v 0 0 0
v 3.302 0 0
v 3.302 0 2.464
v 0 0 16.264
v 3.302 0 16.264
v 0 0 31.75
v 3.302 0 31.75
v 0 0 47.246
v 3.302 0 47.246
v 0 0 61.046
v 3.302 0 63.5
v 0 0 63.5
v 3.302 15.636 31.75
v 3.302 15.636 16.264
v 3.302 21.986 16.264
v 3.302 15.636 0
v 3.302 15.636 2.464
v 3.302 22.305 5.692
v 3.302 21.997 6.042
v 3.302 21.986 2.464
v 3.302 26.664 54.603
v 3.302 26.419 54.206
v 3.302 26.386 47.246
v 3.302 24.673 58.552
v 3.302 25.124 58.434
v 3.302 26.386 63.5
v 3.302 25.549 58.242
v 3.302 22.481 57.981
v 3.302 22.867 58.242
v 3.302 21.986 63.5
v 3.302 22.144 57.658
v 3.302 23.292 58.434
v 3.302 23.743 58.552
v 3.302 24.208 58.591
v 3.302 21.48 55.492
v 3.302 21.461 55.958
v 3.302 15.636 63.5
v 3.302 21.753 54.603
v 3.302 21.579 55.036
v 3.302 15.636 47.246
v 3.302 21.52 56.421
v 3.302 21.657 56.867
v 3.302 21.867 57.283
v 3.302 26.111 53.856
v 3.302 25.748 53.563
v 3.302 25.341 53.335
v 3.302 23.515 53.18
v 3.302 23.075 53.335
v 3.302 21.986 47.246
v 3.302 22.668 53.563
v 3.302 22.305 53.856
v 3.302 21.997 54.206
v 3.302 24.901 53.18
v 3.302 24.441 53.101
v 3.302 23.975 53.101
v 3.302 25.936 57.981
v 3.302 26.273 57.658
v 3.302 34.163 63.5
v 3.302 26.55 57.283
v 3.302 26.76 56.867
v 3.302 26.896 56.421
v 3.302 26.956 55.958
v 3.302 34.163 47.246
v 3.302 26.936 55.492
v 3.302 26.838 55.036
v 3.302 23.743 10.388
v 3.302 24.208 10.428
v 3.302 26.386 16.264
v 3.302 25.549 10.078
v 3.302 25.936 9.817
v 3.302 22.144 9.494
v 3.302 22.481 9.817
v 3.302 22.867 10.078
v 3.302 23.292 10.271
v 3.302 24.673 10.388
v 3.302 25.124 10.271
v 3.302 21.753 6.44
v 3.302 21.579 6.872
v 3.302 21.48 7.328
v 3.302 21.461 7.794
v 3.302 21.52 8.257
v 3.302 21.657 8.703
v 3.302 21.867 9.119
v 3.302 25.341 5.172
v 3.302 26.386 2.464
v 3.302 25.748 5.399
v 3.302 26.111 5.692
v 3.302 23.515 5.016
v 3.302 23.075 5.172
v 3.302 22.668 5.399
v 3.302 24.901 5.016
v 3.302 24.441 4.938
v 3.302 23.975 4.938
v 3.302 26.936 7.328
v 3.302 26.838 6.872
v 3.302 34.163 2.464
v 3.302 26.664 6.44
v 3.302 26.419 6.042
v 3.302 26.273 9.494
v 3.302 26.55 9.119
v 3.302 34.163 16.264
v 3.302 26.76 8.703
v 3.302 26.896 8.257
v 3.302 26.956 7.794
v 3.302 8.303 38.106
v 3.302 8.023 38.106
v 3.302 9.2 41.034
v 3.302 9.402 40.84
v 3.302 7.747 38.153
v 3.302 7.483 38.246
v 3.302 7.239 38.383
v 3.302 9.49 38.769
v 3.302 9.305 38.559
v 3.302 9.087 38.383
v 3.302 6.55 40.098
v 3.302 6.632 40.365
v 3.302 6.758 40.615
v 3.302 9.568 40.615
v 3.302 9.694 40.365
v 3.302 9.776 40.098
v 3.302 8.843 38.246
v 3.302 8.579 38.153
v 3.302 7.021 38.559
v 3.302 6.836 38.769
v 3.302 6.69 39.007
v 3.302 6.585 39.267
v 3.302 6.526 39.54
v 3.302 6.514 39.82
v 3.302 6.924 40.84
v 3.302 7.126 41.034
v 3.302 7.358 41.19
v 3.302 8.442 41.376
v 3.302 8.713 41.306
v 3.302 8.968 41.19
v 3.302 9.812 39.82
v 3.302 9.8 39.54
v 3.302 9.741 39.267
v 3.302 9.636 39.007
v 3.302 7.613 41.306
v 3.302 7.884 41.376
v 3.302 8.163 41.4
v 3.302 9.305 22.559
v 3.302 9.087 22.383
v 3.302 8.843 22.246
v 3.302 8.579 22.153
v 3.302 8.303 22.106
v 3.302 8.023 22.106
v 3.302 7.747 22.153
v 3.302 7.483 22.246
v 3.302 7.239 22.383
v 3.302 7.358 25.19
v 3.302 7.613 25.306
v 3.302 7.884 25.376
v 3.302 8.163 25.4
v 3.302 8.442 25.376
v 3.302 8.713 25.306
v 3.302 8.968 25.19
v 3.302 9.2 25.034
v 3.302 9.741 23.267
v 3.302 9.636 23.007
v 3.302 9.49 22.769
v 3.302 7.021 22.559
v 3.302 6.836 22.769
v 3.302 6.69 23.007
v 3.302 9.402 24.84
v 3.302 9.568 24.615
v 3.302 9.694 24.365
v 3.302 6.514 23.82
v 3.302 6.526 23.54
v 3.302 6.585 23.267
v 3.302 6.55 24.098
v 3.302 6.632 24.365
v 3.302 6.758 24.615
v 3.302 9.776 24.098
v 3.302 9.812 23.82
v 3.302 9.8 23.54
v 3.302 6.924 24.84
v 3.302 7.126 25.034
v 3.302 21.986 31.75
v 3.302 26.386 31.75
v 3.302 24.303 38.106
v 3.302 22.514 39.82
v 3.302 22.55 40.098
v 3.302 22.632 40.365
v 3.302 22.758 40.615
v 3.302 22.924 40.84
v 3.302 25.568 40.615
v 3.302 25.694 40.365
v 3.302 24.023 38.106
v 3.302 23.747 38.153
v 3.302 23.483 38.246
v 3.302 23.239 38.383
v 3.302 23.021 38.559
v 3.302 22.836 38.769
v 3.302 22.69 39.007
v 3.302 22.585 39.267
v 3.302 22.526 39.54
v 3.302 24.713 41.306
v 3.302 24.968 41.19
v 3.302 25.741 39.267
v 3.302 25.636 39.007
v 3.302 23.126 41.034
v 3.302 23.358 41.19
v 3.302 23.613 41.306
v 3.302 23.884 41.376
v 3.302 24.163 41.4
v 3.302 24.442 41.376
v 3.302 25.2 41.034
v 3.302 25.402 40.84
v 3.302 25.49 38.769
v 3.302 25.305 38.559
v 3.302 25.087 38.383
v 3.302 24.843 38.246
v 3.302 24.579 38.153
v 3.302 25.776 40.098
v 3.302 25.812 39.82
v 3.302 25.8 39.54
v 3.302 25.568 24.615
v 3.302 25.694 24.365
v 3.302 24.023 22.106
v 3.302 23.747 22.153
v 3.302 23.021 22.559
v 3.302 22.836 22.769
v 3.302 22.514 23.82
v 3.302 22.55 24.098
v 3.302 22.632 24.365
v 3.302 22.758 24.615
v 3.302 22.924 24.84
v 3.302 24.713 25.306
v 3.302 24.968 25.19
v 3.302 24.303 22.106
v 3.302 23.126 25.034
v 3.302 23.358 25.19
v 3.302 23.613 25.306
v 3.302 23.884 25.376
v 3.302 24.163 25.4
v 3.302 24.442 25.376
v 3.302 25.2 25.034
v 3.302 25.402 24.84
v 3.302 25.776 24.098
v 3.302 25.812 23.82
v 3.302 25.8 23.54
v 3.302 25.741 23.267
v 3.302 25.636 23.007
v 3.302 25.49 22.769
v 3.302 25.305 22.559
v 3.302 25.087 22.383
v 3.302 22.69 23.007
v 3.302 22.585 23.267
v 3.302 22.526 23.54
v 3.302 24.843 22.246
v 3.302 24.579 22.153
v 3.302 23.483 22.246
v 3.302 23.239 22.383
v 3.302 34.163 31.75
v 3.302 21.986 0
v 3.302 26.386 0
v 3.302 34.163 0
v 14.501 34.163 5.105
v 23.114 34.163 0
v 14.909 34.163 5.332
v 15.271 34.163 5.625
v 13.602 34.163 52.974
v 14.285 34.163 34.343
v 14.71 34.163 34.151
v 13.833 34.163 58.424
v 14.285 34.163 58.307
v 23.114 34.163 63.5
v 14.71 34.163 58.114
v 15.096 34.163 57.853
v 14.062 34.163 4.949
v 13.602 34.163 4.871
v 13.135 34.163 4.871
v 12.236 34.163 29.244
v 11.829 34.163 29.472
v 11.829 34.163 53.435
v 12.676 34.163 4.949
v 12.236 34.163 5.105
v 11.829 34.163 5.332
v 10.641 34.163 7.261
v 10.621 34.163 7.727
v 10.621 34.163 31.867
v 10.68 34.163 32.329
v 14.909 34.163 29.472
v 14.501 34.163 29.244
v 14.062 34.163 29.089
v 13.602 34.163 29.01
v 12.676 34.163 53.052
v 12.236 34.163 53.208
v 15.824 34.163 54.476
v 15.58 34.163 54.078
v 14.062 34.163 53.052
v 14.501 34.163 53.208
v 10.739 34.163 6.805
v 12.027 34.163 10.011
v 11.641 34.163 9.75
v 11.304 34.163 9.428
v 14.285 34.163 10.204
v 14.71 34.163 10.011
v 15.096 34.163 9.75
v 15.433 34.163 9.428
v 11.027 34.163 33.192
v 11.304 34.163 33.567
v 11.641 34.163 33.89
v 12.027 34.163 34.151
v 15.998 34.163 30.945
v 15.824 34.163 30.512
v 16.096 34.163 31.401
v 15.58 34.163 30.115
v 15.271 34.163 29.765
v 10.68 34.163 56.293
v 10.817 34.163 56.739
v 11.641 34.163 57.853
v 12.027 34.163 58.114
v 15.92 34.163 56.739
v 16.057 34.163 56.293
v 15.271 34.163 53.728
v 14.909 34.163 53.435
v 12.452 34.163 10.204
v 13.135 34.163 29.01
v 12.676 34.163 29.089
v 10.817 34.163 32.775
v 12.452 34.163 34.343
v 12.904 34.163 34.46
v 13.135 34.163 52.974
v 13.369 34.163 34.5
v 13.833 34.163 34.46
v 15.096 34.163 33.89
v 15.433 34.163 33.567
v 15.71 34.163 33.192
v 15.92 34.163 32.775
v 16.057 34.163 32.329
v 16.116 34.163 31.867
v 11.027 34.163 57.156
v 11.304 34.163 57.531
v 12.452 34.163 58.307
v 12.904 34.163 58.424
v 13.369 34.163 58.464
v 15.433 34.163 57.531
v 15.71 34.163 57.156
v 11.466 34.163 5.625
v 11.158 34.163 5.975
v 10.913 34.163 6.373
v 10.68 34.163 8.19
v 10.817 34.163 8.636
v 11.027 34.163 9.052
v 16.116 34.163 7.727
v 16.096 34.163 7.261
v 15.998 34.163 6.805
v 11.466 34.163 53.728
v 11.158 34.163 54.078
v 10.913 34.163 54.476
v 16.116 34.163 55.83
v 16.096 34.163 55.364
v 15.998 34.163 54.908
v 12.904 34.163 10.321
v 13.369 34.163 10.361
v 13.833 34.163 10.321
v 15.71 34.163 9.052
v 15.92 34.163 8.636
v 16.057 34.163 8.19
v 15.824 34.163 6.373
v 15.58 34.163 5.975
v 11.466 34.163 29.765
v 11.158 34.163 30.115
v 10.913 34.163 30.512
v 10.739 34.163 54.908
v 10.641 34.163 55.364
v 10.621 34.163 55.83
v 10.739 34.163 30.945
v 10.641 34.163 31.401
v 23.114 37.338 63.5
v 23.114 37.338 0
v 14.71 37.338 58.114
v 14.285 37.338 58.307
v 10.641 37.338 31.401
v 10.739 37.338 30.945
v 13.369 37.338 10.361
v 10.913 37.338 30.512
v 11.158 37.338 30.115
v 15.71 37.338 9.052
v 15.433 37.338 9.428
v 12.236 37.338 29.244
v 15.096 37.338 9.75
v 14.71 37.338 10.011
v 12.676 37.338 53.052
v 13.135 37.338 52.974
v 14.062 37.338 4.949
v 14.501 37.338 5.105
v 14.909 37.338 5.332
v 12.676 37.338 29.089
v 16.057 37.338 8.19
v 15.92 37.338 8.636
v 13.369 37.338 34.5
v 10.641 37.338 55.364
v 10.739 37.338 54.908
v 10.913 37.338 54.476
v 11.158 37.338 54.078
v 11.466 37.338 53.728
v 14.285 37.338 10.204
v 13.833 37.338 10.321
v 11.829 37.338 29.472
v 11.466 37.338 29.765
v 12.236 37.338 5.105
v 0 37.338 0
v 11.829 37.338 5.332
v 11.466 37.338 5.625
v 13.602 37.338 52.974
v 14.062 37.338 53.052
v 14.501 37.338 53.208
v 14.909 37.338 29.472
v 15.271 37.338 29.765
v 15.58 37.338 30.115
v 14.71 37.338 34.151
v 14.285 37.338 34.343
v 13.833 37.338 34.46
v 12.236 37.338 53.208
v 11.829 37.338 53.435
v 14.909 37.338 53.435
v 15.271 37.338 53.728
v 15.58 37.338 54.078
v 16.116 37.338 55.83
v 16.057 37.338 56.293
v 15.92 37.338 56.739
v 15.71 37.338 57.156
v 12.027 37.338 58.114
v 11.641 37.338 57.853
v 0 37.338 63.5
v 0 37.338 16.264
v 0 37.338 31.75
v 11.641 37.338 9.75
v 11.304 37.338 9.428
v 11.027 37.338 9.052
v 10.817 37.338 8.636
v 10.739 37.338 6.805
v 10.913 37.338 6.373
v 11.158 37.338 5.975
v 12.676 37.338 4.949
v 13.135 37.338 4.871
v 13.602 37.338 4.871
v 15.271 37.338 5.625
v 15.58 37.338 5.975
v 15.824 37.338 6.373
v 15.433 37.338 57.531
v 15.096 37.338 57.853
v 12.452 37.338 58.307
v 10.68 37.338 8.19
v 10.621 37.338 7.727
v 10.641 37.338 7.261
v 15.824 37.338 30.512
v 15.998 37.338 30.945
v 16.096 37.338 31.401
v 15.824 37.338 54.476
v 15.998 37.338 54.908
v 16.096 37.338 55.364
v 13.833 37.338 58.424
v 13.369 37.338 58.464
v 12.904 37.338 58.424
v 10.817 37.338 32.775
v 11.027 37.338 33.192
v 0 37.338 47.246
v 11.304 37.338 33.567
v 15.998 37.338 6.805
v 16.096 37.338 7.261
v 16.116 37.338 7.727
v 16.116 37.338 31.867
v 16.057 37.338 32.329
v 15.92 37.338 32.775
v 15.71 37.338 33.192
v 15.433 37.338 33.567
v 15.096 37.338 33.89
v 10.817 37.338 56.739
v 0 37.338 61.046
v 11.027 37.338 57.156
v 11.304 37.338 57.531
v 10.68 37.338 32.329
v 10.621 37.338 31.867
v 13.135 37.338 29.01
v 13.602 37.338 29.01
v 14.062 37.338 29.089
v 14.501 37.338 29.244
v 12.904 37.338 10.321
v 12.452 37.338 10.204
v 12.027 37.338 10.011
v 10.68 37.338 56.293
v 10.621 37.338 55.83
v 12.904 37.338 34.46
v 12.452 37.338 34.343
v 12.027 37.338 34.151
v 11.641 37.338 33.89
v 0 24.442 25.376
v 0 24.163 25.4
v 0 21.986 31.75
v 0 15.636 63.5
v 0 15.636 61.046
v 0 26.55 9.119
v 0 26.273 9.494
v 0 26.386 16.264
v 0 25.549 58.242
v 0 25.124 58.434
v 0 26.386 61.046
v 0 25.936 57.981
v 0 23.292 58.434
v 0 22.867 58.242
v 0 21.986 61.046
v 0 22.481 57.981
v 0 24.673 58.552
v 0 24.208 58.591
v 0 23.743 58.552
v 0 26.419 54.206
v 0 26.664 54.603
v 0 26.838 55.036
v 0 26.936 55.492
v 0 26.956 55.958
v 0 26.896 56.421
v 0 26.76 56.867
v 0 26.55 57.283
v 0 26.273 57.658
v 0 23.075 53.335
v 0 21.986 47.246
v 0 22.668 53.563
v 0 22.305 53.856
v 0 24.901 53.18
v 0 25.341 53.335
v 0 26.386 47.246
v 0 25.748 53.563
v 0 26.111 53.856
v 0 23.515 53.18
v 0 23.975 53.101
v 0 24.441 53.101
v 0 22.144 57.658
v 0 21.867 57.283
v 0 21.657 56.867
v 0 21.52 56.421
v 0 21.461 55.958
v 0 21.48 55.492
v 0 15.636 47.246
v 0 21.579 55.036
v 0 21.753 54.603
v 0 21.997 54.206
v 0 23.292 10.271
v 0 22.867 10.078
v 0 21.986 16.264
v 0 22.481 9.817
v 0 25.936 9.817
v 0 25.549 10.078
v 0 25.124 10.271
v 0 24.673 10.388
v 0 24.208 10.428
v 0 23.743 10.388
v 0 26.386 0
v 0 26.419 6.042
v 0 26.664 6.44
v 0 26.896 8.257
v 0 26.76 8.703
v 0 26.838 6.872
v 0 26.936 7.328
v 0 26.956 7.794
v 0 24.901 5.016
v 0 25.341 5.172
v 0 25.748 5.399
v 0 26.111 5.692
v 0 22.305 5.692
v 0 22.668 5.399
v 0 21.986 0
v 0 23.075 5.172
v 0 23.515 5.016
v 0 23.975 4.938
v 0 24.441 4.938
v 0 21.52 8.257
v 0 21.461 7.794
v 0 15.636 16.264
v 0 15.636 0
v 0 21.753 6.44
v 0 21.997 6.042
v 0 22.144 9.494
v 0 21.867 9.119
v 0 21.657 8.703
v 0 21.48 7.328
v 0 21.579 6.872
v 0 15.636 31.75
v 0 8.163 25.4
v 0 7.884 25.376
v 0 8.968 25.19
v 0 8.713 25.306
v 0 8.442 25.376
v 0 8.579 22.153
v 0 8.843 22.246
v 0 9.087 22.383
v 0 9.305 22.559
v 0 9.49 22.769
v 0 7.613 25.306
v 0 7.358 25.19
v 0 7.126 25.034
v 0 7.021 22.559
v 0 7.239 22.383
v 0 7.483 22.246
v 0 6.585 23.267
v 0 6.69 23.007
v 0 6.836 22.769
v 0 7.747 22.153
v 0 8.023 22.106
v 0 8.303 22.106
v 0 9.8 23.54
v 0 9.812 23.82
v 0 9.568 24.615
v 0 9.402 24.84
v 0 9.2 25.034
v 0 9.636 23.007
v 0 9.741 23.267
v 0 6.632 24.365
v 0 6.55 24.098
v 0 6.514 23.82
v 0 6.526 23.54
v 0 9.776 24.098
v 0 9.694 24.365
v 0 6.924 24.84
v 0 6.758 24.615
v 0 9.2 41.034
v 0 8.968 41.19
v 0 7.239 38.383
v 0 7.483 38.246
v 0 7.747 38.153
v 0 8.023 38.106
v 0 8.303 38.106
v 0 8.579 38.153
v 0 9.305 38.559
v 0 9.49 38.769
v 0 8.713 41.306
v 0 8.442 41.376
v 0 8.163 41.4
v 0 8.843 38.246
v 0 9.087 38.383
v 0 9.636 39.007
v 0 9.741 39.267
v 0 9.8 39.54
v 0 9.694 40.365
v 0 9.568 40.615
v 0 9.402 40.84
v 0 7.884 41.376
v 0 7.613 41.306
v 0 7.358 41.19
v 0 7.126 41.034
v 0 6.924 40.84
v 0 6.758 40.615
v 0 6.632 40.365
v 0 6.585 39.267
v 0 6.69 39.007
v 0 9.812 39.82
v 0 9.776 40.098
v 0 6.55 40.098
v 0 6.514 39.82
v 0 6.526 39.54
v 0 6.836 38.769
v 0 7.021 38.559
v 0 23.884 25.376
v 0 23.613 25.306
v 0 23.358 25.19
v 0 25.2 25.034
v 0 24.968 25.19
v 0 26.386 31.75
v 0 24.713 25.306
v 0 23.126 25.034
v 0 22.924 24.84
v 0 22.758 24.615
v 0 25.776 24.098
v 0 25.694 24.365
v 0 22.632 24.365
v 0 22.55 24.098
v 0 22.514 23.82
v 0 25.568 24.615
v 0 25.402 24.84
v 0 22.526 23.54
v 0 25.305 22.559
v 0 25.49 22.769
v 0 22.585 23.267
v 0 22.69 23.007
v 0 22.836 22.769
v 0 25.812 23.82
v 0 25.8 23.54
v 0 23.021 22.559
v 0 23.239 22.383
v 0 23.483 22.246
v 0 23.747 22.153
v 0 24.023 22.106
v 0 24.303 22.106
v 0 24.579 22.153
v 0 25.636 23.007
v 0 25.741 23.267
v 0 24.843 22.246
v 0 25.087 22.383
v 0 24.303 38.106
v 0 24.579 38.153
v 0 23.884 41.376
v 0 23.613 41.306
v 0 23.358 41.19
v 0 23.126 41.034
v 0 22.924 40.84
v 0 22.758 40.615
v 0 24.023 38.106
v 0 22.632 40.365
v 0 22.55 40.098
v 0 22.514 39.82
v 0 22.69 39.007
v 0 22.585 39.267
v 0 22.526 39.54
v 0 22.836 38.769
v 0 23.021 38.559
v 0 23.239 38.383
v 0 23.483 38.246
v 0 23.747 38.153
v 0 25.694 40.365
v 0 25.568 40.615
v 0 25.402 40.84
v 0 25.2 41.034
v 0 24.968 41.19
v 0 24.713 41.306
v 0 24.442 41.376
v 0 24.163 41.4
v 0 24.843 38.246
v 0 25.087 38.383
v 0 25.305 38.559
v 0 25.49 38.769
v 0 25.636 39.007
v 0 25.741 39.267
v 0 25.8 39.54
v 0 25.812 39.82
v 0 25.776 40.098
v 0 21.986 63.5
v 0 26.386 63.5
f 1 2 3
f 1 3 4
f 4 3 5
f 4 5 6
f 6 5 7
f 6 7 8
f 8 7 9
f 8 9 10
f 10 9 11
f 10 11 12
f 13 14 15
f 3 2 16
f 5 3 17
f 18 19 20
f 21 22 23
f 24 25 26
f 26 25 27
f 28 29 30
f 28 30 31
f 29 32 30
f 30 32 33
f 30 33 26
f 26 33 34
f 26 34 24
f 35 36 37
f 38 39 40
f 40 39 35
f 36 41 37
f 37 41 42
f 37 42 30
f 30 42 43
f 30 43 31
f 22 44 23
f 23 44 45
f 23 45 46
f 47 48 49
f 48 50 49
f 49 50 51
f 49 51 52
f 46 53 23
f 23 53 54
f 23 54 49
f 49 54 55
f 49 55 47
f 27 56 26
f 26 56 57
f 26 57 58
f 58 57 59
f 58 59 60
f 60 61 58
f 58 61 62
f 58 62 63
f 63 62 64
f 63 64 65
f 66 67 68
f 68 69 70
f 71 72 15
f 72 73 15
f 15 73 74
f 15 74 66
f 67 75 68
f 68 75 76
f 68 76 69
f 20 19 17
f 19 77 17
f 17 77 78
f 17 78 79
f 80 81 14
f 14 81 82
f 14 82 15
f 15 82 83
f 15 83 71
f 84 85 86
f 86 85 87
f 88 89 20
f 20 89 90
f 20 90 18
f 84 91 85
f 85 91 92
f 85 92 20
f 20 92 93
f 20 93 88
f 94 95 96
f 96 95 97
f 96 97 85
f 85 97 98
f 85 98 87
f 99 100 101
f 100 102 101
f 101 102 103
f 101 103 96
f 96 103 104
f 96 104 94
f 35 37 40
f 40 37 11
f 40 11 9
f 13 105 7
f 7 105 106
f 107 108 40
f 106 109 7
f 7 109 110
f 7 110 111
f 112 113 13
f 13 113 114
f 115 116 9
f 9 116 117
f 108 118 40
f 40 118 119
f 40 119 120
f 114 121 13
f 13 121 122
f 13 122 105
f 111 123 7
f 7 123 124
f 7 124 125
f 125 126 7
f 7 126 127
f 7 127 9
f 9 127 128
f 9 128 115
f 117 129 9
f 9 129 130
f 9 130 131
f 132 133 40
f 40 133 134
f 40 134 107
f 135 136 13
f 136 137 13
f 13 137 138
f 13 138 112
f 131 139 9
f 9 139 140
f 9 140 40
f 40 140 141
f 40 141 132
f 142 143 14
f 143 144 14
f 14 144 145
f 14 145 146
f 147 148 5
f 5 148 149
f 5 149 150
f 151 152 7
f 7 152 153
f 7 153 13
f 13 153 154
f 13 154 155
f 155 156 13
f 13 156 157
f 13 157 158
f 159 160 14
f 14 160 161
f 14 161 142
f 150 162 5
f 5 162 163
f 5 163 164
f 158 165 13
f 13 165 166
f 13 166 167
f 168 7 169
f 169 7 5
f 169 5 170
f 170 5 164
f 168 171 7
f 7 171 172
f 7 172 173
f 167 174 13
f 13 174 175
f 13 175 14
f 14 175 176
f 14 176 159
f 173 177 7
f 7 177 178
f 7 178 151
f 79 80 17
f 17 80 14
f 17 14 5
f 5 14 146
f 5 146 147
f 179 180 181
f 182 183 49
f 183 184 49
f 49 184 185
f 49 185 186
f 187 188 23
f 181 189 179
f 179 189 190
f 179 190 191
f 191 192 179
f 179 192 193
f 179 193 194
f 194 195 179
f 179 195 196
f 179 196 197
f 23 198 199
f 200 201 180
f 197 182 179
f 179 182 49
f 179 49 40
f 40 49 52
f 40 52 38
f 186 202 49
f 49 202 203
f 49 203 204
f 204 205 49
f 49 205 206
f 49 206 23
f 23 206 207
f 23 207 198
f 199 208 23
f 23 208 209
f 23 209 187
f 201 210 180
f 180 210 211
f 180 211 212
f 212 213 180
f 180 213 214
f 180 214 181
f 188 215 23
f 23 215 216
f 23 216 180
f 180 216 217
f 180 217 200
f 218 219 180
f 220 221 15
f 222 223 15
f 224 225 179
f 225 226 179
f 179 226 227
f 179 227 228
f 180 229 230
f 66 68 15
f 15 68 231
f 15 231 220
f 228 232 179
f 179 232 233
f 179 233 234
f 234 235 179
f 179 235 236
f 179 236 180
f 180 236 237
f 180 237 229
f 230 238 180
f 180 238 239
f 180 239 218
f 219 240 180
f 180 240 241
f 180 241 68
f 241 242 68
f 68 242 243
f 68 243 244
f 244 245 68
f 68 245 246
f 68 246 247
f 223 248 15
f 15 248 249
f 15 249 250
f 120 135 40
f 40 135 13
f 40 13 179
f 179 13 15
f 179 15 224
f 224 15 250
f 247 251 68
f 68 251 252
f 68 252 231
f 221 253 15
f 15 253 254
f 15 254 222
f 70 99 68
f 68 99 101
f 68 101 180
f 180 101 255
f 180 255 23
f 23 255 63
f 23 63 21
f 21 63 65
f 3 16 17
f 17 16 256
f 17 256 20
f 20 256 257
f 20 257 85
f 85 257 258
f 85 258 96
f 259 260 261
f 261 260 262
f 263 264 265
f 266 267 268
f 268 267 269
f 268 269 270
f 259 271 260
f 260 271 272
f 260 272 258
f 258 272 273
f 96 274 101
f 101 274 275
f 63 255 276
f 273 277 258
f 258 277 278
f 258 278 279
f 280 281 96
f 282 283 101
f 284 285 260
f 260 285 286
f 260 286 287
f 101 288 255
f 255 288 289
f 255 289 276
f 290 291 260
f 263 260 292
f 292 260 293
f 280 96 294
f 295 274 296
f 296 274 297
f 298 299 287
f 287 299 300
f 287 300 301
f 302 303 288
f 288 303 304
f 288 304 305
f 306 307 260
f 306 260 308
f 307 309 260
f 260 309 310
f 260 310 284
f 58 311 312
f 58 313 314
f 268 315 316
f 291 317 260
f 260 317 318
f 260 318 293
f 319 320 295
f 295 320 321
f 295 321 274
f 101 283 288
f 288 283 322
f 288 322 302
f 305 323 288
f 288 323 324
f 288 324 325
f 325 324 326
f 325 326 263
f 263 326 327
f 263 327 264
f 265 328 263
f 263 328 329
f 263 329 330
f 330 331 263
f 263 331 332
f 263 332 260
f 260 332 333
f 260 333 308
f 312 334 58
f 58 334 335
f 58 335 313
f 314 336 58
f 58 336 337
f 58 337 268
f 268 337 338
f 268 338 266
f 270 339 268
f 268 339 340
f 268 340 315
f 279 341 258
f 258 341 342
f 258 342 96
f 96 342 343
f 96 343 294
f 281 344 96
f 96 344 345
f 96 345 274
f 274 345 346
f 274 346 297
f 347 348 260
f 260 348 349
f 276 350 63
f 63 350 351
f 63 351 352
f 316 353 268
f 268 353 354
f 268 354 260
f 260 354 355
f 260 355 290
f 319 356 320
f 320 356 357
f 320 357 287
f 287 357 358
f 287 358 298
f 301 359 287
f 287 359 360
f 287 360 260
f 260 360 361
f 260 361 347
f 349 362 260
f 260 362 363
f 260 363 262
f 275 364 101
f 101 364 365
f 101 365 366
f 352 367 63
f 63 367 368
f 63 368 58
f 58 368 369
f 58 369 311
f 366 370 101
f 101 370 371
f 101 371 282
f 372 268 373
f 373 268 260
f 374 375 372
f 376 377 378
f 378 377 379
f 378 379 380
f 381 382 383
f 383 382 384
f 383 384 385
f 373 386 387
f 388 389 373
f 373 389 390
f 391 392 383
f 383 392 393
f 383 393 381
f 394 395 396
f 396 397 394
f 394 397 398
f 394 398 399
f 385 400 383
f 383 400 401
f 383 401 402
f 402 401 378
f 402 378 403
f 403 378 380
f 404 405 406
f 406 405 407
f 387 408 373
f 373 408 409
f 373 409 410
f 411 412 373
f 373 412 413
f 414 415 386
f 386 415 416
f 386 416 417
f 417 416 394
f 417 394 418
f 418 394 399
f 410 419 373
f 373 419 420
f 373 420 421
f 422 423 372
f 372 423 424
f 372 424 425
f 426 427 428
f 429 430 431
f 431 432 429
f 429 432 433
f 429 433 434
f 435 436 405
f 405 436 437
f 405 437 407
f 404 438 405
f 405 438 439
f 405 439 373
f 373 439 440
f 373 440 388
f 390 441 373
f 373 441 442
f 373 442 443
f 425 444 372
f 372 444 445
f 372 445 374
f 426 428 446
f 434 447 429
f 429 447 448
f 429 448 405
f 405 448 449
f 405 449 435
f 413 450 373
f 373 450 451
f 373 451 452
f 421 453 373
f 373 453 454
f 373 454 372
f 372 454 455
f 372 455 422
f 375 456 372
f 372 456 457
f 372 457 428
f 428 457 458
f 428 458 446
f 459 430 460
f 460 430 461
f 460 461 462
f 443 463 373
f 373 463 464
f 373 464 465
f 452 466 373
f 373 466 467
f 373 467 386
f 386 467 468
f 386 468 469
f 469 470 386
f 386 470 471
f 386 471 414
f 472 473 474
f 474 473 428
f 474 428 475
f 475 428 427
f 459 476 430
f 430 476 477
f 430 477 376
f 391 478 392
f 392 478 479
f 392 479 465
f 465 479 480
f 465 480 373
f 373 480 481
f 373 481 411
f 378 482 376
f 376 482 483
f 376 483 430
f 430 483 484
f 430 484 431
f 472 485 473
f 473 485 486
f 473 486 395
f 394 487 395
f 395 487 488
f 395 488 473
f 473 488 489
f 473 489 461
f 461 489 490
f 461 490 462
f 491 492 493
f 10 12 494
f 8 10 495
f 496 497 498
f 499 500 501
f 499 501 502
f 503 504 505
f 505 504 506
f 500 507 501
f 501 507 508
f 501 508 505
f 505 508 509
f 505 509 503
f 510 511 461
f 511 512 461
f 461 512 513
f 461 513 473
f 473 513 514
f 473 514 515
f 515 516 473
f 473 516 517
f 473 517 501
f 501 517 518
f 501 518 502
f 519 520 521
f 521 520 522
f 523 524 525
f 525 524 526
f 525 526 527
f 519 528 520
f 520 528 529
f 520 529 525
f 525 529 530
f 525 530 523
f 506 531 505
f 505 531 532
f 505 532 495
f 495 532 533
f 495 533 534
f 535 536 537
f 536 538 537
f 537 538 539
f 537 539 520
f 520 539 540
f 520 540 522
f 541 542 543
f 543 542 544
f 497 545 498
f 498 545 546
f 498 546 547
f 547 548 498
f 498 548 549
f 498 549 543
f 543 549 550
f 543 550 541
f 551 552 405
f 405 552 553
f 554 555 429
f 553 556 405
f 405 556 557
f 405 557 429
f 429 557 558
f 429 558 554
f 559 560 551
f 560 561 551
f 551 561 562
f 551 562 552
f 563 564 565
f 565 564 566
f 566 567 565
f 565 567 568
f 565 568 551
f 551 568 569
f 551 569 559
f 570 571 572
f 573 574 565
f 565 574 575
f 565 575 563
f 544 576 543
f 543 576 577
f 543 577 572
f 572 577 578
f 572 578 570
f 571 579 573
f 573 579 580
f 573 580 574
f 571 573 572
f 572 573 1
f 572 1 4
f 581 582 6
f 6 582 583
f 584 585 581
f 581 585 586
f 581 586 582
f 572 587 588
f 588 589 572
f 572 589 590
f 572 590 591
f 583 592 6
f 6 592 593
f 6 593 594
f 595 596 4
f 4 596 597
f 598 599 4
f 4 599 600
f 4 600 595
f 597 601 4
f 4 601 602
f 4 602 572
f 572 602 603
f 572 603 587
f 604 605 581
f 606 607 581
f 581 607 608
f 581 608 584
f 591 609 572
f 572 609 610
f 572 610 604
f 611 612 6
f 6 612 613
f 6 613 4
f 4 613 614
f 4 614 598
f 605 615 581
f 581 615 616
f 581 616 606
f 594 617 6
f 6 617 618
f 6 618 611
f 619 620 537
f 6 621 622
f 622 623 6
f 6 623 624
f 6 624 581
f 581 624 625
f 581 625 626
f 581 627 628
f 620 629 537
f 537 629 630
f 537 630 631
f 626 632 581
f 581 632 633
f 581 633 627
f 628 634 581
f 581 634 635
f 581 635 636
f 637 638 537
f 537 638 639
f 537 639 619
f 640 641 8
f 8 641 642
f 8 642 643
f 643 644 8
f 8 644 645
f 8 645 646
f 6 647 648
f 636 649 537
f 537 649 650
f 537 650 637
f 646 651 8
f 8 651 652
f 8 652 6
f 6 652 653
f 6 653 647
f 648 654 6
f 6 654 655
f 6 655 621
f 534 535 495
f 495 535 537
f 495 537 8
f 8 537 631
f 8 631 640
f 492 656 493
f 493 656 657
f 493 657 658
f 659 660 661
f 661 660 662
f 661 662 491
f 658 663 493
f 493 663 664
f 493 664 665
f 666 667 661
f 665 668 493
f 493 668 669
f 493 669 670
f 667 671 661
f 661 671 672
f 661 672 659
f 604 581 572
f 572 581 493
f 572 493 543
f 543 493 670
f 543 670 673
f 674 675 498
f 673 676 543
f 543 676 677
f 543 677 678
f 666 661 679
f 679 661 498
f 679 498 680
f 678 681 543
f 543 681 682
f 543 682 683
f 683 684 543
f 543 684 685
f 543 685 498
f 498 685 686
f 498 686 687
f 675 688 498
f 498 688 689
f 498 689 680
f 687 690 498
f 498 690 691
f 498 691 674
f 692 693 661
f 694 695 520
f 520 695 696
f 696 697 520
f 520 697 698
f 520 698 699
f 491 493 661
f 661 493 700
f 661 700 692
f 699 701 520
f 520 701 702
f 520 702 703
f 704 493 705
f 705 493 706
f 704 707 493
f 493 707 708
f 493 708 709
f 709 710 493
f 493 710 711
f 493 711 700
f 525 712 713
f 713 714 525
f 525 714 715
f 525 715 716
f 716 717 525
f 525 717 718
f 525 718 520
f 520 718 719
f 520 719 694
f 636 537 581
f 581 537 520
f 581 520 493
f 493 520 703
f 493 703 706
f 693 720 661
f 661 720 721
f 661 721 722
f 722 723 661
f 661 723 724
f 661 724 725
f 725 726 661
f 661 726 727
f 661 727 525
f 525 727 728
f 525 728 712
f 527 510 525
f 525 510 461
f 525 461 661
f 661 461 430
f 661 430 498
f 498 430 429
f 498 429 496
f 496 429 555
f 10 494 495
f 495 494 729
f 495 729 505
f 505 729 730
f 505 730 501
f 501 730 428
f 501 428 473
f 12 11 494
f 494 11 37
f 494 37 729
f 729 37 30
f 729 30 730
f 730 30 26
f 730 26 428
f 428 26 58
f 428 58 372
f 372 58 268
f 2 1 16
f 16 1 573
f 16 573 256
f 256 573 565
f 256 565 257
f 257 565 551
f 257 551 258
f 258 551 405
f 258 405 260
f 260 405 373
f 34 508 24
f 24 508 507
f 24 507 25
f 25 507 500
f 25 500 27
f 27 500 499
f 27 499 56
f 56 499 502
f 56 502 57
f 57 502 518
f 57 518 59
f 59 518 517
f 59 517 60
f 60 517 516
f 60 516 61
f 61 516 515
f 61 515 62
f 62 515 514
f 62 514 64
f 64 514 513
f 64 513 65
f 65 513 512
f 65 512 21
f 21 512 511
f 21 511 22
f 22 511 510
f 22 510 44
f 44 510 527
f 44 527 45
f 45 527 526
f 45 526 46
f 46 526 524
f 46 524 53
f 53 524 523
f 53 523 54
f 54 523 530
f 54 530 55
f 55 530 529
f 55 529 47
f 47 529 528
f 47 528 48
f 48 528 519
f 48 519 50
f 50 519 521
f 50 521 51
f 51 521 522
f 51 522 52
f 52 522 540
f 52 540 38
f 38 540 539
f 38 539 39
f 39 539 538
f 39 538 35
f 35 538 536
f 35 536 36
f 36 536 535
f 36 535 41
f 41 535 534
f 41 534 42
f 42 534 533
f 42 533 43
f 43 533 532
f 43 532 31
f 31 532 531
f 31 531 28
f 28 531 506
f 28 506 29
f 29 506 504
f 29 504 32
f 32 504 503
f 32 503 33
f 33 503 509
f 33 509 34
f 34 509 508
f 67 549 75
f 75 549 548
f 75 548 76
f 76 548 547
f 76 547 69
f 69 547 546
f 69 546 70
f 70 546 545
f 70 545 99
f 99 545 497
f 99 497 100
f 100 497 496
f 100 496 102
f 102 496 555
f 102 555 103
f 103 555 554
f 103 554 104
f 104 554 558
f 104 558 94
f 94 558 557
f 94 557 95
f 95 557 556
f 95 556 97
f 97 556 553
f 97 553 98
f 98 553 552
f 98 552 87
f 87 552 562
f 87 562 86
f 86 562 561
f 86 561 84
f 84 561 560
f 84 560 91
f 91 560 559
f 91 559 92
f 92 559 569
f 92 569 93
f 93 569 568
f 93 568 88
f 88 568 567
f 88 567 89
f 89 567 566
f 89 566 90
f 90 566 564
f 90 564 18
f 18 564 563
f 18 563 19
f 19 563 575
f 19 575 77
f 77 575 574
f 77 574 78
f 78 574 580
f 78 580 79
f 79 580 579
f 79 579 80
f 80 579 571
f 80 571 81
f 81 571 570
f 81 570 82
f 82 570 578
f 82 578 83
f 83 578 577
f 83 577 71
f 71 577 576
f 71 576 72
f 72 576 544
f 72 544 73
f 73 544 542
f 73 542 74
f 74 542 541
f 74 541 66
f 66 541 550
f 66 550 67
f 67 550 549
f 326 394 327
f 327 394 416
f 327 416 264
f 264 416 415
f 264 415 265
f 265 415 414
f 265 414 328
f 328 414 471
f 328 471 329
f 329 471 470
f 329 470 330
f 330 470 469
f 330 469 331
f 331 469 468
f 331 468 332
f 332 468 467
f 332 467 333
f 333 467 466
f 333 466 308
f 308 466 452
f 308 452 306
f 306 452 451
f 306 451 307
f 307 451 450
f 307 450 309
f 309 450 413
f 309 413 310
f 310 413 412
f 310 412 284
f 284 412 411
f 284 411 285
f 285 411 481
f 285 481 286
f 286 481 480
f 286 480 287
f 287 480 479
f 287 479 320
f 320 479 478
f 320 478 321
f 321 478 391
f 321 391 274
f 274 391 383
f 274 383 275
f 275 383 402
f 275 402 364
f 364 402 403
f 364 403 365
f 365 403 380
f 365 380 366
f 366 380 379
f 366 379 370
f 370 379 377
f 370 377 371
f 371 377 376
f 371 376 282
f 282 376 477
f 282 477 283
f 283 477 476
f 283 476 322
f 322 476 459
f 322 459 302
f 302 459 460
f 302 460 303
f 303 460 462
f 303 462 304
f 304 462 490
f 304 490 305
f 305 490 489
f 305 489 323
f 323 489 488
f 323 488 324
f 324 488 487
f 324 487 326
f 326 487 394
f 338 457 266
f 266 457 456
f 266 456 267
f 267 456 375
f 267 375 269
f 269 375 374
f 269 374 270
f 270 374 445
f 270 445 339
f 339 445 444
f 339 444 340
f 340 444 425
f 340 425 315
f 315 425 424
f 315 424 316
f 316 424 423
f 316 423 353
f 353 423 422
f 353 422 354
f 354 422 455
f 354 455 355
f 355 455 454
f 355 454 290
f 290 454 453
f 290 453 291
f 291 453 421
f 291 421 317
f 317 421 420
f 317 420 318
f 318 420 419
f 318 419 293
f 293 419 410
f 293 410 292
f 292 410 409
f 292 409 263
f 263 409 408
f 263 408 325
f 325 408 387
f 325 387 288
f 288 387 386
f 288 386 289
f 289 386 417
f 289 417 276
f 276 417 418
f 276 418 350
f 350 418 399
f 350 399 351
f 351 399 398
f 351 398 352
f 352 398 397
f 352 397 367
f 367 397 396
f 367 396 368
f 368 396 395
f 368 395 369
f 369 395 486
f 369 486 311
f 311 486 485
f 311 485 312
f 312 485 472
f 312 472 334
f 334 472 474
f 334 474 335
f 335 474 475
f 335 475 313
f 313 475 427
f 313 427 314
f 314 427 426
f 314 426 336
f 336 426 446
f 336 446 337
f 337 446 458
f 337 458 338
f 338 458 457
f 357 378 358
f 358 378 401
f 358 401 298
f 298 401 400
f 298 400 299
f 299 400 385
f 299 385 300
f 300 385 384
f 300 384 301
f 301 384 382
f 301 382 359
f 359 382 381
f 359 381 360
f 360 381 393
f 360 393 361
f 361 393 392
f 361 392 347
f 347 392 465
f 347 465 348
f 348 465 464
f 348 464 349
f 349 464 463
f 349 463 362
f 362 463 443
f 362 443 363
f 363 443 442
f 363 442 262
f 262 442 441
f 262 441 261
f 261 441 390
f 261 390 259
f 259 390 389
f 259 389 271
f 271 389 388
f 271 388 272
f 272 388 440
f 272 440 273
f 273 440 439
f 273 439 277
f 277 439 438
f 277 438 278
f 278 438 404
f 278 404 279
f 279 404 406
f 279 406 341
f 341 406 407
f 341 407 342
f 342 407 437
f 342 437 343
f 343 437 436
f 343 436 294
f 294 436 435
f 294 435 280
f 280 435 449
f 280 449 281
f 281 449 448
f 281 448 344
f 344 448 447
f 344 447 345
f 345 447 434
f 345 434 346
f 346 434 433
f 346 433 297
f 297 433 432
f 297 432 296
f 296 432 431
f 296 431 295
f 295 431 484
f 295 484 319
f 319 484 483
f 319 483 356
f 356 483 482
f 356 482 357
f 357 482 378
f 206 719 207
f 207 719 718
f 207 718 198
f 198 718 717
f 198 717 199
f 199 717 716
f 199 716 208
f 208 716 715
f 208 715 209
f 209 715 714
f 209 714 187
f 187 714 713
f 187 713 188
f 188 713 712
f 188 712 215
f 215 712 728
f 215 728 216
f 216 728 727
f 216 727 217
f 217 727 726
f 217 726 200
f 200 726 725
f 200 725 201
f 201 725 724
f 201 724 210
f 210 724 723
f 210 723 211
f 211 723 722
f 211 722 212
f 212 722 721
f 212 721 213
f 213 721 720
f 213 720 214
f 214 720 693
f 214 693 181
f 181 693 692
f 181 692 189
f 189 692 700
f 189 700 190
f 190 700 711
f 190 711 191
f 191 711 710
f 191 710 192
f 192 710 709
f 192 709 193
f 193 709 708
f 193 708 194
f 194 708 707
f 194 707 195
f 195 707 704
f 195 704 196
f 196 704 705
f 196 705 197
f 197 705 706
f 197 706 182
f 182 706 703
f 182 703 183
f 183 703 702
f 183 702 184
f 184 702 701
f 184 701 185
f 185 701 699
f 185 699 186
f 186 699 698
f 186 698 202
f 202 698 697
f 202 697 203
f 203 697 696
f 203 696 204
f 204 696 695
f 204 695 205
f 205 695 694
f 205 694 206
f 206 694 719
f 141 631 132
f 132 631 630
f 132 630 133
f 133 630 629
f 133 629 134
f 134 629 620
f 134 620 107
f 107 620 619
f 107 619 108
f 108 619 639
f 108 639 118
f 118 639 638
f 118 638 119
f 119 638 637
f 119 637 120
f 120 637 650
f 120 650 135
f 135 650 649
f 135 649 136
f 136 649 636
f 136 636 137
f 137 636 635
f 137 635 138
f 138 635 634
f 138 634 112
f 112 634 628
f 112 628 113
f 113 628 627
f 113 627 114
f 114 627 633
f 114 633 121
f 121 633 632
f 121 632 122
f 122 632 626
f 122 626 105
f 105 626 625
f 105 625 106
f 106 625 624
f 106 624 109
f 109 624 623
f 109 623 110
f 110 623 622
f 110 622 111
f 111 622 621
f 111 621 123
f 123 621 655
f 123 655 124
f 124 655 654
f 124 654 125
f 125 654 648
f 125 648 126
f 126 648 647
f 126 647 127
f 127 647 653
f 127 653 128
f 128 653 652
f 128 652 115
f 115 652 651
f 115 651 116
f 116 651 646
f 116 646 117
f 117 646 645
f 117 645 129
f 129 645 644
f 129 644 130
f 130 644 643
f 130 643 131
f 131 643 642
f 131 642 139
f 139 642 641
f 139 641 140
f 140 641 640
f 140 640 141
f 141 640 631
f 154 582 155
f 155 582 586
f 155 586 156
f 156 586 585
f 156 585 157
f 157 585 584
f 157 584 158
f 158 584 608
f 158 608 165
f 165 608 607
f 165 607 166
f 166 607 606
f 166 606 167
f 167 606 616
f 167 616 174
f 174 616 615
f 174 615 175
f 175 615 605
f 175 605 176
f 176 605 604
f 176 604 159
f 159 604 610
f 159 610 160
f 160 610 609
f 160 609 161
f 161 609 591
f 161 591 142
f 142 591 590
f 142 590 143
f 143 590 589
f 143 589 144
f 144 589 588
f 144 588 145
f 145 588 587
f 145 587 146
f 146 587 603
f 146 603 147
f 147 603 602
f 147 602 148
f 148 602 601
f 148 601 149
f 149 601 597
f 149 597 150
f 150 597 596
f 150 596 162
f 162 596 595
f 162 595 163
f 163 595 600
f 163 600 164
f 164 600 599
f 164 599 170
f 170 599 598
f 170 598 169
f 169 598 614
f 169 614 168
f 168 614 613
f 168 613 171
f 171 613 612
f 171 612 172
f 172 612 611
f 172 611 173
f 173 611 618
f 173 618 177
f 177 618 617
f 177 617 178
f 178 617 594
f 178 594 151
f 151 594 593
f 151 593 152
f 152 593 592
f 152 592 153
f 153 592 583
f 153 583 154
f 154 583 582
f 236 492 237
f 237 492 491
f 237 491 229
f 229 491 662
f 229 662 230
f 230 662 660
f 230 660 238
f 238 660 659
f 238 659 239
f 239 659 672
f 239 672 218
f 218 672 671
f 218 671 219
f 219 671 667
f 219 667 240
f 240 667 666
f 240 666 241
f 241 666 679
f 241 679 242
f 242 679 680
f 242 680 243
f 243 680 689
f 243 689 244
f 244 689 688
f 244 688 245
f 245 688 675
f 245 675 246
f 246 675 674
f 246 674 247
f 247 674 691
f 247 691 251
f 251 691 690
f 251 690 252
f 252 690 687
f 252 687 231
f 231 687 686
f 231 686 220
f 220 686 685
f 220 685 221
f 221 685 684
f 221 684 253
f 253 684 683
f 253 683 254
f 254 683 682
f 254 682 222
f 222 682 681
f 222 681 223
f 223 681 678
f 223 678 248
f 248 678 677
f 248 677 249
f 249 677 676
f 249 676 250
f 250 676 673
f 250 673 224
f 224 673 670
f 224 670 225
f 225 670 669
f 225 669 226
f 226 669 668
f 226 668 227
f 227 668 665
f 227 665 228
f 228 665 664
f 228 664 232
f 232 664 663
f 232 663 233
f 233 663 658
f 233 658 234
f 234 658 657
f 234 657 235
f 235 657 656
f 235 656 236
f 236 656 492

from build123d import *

# Parameters (mm, degrees)
BOSS_EXTRUDE1_DEPTH         = 63.5
M5_CLEARANCE_HOLE1_D        = 5.5
M5_CLEARANCE_HOLE2_D        = 5.5
M5_CLEARANCE_HOLE3_D        = 5.5
M5_CLEARANCE_HOLE4_D        = 5.5
M5_CLEARANCE_HOLE5_D        = 5.5
TAP_DRILL_FOR_M4X0_7_TAP2_D = 3.3


with BuildPart() as part:
    # Sketch1 → Boss-Extrude1 (new body)
    with BuildSketch(Plane.XY):
        Polygon((0, 0), (0, 37.338), (23.114, 37.338), (23.114, 34.163), (3.302, 34.163), (3.302, 0), align=None)
    extrude(amount=BOSS_EXTRUDE1_DEPTH)

    # M5 Clearance Hole1 (through all)
    with Locations(Plane.ZY):
        with Locations((55.84134748, 24.208221519)):
            Hole(M5_CLEARANCE_HOLE1_D / 2)

    # M5 Clearance Hole2 (through all)
    with Locations(Plane.ZY):
        with Locations((7.677638483, 24.208221519)):
            Hole(M5_CLEARANCE_HOLE2_D / 2)

    # M5 Clearance Hole3 (through all)
    with Locations(Plane(origin=(0, 37.338, 0), x_dir=(1, 0, 0), z_dir=(0, 1, 0))):
        with Locations((13.368582087, -31.75)):
            Hole(M5_CLEARANCE_HOLE3_D / 2)

    # M5 Clearance Hole4 (through all)
    with Locations(Plane(origin=(0, 37.338, 0), x_dir=(1, 0, 0), z_dir=(0, 1, 0))):
        with Locations((13.368582087, -55.713693276)):
            Hole(M5_CLEARANCE_HOLE4_D / 2)

    # M5 Clearance Hole5 (through all)
    with Locations(Plane(origin=(0, 37.338, 0), x_dir=(1, 0, 0), z_dir=(0, 1, 0))):
        with Locations((13.368582087, -7.610649616)):
            Hole(M5_CLEARANCE_HOLE5_D / 2)

    # Tap Drill for M4x0.7 Tap2 (through all)
    with Locations(Plane.ZY):
        with Locations((23.75, 24.163), (23.75, 8.163), (39.75, 8.163), (39.75, 24.163)):
            Hole(TAP_DRILL_FOR_M4X0_7_TAP2_D / 2)


solid = part.part
